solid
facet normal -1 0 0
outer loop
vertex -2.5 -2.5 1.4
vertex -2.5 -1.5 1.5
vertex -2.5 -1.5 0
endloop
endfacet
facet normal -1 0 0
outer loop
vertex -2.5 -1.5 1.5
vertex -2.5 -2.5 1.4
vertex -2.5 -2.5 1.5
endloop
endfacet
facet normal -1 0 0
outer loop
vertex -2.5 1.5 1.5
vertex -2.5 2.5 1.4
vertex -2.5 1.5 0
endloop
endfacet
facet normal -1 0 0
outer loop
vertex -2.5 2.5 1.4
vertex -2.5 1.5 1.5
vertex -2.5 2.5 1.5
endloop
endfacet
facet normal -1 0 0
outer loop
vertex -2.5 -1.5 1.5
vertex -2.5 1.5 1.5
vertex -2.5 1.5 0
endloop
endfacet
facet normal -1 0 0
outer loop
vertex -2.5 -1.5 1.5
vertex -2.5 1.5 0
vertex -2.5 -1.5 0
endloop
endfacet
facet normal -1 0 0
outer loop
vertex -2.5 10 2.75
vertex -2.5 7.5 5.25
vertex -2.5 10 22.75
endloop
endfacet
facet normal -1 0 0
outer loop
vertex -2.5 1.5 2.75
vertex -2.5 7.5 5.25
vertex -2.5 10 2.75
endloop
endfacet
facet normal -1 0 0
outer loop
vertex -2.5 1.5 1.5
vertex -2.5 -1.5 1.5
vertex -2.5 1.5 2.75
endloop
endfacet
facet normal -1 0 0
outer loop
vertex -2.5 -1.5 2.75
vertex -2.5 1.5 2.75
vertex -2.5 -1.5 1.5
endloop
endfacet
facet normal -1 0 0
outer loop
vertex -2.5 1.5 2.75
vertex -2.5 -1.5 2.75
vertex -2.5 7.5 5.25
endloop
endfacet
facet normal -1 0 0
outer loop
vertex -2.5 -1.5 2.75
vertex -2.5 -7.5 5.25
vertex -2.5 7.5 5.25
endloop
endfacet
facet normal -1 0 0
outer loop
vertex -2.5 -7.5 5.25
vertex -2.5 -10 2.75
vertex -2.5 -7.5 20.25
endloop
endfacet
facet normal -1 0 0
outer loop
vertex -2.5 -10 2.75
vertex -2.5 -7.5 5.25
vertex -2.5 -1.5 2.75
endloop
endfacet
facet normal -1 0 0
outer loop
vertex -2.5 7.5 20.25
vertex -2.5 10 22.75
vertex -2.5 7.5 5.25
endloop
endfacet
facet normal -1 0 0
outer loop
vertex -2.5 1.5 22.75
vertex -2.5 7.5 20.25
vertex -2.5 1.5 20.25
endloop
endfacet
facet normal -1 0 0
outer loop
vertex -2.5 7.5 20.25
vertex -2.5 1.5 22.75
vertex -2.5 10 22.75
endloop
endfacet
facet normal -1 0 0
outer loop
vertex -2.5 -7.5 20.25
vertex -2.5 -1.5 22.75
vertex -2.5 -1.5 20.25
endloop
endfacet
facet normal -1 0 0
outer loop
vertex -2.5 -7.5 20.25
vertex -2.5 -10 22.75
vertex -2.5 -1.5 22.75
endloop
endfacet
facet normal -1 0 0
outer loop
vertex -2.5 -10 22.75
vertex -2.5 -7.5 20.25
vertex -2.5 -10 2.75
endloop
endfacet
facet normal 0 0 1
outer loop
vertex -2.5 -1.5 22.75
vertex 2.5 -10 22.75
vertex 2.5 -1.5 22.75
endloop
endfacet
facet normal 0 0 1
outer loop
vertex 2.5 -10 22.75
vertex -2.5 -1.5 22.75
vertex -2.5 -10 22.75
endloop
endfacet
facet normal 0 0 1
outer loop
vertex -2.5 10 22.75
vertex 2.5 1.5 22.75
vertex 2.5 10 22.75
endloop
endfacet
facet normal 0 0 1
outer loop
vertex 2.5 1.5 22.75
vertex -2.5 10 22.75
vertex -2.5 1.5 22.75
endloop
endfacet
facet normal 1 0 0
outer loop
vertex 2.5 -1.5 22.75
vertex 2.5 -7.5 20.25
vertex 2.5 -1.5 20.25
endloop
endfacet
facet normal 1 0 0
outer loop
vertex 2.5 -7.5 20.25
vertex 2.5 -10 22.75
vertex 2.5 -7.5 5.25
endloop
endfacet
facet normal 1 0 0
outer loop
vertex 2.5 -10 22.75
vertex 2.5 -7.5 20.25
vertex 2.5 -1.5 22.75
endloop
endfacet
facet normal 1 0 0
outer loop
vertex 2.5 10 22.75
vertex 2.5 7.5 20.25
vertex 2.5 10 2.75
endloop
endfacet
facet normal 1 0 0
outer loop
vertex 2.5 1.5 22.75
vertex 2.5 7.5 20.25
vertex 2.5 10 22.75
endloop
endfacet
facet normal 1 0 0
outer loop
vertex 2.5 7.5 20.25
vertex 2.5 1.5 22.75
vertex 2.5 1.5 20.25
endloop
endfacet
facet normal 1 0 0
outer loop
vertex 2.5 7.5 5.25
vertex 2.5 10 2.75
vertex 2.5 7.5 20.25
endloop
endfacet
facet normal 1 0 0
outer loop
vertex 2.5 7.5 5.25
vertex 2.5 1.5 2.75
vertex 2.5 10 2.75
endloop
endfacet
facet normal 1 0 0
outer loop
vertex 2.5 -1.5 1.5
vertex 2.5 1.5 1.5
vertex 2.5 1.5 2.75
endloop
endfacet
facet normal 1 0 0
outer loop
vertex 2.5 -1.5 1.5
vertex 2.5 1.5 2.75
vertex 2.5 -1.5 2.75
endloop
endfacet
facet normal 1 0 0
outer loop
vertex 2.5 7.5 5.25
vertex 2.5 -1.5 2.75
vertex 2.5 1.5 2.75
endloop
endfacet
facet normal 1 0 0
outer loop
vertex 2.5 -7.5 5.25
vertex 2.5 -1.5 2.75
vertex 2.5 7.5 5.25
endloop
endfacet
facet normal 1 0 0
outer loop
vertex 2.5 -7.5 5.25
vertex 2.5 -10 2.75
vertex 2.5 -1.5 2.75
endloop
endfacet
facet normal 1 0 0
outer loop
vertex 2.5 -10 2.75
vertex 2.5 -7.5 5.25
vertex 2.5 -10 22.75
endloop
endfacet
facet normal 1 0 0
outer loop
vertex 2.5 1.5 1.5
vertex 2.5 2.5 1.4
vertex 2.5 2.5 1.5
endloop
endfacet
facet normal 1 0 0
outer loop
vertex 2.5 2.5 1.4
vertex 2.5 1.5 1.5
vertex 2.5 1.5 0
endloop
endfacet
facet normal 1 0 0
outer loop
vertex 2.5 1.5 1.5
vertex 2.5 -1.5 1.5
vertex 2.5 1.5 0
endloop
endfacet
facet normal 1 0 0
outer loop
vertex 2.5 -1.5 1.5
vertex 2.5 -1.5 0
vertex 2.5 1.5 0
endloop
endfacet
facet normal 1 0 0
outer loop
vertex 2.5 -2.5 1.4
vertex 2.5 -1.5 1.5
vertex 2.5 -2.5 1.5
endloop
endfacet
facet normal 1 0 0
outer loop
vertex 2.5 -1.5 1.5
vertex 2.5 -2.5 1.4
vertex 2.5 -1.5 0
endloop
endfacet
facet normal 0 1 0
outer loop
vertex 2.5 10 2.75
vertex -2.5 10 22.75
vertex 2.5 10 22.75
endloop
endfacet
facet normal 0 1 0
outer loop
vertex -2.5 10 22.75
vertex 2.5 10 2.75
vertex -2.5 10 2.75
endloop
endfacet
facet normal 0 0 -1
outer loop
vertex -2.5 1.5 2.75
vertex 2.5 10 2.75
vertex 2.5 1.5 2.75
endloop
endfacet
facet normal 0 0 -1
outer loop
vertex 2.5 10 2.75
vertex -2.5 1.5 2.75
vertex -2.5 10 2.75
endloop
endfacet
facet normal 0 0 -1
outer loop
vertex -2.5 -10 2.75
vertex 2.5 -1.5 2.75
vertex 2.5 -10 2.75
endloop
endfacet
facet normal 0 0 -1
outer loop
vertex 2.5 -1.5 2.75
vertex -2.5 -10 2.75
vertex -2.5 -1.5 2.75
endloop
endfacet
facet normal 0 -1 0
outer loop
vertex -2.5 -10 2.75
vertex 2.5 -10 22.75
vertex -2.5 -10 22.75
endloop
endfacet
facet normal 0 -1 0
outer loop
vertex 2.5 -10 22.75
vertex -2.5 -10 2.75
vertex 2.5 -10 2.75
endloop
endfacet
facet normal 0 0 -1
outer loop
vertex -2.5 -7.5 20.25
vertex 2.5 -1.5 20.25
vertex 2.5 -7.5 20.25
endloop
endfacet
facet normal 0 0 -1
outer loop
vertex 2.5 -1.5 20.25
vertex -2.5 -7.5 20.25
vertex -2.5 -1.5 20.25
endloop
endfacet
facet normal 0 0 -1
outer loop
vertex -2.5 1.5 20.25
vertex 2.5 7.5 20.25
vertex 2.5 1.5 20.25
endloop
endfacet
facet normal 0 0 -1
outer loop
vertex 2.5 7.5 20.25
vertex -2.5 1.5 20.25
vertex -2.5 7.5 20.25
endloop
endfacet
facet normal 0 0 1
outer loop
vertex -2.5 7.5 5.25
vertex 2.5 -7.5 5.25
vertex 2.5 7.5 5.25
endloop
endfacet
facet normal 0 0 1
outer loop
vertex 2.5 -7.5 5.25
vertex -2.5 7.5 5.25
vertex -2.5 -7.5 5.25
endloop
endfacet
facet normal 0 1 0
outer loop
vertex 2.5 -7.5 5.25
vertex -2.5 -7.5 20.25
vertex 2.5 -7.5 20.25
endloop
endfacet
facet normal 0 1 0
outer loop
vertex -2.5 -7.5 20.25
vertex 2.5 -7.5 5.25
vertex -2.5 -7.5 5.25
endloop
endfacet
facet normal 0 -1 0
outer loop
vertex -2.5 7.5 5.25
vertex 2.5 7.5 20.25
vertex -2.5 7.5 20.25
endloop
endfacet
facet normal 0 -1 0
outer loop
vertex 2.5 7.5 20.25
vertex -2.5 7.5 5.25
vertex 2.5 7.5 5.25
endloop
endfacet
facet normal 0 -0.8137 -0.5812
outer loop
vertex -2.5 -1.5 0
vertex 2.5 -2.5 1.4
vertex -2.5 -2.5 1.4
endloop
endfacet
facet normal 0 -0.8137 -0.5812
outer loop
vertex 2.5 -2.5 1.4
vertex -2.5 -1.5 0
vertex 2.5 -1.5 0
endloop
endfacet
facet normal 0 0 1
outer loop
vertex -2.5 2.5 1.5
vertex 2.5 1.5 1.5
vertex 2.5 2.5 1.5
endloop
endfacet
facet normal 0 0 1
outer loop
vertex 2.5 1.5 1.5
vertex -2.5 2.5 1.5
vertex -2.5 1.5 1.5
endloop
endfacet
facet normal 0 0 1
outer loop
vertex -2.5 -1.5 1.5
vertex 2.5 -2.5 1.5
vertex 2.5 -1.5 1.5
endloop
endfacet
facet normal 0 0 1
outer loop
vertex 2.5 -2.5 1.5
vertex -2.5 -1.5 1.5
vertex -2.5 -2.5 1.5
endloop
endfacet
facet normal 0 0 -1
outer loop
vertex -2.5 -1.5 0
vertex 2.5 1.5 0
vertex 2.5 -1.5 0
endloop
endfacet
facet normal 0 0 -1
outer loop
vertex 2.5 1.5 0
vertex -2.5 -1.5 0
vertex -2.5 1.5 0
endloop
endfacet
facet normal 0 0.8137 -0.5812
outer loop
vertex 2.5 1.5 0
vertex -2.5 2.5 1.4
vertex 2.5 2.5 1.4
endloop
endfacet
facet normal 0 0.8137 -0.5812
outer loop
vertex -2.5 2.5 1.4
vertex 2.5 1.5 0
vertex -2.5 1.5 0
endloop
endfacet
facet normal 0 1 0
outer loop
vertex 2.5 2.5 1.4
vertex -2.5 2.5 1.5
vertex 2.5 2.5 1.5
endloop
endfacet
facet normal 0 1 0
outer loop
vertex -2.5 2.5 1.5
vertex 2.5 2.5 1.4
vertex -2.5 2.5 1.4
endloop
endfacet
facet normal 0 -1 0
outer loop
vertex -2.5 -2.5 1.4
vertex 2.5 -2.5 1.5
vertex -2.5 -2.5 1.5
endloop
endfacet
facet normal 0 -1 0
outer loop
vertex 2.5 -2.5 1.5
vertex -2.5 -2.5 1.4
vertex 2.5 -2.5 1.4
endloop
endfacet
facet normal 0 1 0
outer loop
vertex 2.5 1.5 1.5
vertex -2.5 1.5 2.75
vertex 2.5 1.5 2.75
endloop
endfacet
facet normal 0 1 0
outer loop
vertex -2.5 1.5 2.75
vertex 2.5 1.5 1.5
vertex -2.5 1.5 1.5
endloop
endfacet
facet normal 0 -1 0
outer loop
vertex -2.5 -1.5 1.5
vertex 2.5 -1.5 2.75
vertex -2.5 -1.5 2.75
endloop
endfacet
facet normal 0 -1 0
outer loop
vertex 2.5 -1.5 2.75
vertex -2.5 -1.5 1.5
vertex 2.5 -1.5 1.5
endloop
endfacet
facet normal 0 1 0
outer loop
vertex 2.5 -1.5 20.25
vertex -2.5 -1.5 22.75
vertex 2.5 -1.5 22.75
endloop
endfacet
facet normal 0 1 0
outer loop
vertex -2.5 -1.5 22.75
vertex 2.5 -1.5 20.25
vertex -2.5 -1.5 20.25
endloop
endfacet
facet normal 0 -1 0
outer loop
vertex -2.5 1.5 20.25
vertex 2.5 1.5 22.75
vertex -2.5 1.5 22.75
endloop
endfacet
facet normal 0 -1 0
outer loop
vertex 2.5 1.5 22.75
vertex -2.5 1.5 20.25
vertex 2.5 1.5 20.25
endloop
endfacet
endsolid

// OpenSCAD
$fn = 120;

height = 5;
boxOutside = 20;
boxInside = 15;
opening = true;

module cableHolder() {
    union() {
        // PEG
        hull() {
            translate([0, 0, 0.75])
                cube([height, 3, 1.5], center = true);
            translate([0, 0, 1.45])
                cube([height, 5, 0.1], center = true);
        }

        // STEM
        translate([0, 0, 3])
            cube([height, 3, 3], center = true);
        
        // BOX
        translate([0, 0, (boxOutside / 2) + 2.75])
            difference() {
                cube([height, boxOutside, boxOutside], center = true);
                cube([height + 1, boxInside, boxInside], center = true);
            }
    }
}

if(opening) {
    difference() {        
        cableHolder();
        translate([0, 0, (boxOutside * 2)])
            cube([height + 1, 3, (boxOutside * 2)], center = true);
    }
} else {
    cableHolder();
}
